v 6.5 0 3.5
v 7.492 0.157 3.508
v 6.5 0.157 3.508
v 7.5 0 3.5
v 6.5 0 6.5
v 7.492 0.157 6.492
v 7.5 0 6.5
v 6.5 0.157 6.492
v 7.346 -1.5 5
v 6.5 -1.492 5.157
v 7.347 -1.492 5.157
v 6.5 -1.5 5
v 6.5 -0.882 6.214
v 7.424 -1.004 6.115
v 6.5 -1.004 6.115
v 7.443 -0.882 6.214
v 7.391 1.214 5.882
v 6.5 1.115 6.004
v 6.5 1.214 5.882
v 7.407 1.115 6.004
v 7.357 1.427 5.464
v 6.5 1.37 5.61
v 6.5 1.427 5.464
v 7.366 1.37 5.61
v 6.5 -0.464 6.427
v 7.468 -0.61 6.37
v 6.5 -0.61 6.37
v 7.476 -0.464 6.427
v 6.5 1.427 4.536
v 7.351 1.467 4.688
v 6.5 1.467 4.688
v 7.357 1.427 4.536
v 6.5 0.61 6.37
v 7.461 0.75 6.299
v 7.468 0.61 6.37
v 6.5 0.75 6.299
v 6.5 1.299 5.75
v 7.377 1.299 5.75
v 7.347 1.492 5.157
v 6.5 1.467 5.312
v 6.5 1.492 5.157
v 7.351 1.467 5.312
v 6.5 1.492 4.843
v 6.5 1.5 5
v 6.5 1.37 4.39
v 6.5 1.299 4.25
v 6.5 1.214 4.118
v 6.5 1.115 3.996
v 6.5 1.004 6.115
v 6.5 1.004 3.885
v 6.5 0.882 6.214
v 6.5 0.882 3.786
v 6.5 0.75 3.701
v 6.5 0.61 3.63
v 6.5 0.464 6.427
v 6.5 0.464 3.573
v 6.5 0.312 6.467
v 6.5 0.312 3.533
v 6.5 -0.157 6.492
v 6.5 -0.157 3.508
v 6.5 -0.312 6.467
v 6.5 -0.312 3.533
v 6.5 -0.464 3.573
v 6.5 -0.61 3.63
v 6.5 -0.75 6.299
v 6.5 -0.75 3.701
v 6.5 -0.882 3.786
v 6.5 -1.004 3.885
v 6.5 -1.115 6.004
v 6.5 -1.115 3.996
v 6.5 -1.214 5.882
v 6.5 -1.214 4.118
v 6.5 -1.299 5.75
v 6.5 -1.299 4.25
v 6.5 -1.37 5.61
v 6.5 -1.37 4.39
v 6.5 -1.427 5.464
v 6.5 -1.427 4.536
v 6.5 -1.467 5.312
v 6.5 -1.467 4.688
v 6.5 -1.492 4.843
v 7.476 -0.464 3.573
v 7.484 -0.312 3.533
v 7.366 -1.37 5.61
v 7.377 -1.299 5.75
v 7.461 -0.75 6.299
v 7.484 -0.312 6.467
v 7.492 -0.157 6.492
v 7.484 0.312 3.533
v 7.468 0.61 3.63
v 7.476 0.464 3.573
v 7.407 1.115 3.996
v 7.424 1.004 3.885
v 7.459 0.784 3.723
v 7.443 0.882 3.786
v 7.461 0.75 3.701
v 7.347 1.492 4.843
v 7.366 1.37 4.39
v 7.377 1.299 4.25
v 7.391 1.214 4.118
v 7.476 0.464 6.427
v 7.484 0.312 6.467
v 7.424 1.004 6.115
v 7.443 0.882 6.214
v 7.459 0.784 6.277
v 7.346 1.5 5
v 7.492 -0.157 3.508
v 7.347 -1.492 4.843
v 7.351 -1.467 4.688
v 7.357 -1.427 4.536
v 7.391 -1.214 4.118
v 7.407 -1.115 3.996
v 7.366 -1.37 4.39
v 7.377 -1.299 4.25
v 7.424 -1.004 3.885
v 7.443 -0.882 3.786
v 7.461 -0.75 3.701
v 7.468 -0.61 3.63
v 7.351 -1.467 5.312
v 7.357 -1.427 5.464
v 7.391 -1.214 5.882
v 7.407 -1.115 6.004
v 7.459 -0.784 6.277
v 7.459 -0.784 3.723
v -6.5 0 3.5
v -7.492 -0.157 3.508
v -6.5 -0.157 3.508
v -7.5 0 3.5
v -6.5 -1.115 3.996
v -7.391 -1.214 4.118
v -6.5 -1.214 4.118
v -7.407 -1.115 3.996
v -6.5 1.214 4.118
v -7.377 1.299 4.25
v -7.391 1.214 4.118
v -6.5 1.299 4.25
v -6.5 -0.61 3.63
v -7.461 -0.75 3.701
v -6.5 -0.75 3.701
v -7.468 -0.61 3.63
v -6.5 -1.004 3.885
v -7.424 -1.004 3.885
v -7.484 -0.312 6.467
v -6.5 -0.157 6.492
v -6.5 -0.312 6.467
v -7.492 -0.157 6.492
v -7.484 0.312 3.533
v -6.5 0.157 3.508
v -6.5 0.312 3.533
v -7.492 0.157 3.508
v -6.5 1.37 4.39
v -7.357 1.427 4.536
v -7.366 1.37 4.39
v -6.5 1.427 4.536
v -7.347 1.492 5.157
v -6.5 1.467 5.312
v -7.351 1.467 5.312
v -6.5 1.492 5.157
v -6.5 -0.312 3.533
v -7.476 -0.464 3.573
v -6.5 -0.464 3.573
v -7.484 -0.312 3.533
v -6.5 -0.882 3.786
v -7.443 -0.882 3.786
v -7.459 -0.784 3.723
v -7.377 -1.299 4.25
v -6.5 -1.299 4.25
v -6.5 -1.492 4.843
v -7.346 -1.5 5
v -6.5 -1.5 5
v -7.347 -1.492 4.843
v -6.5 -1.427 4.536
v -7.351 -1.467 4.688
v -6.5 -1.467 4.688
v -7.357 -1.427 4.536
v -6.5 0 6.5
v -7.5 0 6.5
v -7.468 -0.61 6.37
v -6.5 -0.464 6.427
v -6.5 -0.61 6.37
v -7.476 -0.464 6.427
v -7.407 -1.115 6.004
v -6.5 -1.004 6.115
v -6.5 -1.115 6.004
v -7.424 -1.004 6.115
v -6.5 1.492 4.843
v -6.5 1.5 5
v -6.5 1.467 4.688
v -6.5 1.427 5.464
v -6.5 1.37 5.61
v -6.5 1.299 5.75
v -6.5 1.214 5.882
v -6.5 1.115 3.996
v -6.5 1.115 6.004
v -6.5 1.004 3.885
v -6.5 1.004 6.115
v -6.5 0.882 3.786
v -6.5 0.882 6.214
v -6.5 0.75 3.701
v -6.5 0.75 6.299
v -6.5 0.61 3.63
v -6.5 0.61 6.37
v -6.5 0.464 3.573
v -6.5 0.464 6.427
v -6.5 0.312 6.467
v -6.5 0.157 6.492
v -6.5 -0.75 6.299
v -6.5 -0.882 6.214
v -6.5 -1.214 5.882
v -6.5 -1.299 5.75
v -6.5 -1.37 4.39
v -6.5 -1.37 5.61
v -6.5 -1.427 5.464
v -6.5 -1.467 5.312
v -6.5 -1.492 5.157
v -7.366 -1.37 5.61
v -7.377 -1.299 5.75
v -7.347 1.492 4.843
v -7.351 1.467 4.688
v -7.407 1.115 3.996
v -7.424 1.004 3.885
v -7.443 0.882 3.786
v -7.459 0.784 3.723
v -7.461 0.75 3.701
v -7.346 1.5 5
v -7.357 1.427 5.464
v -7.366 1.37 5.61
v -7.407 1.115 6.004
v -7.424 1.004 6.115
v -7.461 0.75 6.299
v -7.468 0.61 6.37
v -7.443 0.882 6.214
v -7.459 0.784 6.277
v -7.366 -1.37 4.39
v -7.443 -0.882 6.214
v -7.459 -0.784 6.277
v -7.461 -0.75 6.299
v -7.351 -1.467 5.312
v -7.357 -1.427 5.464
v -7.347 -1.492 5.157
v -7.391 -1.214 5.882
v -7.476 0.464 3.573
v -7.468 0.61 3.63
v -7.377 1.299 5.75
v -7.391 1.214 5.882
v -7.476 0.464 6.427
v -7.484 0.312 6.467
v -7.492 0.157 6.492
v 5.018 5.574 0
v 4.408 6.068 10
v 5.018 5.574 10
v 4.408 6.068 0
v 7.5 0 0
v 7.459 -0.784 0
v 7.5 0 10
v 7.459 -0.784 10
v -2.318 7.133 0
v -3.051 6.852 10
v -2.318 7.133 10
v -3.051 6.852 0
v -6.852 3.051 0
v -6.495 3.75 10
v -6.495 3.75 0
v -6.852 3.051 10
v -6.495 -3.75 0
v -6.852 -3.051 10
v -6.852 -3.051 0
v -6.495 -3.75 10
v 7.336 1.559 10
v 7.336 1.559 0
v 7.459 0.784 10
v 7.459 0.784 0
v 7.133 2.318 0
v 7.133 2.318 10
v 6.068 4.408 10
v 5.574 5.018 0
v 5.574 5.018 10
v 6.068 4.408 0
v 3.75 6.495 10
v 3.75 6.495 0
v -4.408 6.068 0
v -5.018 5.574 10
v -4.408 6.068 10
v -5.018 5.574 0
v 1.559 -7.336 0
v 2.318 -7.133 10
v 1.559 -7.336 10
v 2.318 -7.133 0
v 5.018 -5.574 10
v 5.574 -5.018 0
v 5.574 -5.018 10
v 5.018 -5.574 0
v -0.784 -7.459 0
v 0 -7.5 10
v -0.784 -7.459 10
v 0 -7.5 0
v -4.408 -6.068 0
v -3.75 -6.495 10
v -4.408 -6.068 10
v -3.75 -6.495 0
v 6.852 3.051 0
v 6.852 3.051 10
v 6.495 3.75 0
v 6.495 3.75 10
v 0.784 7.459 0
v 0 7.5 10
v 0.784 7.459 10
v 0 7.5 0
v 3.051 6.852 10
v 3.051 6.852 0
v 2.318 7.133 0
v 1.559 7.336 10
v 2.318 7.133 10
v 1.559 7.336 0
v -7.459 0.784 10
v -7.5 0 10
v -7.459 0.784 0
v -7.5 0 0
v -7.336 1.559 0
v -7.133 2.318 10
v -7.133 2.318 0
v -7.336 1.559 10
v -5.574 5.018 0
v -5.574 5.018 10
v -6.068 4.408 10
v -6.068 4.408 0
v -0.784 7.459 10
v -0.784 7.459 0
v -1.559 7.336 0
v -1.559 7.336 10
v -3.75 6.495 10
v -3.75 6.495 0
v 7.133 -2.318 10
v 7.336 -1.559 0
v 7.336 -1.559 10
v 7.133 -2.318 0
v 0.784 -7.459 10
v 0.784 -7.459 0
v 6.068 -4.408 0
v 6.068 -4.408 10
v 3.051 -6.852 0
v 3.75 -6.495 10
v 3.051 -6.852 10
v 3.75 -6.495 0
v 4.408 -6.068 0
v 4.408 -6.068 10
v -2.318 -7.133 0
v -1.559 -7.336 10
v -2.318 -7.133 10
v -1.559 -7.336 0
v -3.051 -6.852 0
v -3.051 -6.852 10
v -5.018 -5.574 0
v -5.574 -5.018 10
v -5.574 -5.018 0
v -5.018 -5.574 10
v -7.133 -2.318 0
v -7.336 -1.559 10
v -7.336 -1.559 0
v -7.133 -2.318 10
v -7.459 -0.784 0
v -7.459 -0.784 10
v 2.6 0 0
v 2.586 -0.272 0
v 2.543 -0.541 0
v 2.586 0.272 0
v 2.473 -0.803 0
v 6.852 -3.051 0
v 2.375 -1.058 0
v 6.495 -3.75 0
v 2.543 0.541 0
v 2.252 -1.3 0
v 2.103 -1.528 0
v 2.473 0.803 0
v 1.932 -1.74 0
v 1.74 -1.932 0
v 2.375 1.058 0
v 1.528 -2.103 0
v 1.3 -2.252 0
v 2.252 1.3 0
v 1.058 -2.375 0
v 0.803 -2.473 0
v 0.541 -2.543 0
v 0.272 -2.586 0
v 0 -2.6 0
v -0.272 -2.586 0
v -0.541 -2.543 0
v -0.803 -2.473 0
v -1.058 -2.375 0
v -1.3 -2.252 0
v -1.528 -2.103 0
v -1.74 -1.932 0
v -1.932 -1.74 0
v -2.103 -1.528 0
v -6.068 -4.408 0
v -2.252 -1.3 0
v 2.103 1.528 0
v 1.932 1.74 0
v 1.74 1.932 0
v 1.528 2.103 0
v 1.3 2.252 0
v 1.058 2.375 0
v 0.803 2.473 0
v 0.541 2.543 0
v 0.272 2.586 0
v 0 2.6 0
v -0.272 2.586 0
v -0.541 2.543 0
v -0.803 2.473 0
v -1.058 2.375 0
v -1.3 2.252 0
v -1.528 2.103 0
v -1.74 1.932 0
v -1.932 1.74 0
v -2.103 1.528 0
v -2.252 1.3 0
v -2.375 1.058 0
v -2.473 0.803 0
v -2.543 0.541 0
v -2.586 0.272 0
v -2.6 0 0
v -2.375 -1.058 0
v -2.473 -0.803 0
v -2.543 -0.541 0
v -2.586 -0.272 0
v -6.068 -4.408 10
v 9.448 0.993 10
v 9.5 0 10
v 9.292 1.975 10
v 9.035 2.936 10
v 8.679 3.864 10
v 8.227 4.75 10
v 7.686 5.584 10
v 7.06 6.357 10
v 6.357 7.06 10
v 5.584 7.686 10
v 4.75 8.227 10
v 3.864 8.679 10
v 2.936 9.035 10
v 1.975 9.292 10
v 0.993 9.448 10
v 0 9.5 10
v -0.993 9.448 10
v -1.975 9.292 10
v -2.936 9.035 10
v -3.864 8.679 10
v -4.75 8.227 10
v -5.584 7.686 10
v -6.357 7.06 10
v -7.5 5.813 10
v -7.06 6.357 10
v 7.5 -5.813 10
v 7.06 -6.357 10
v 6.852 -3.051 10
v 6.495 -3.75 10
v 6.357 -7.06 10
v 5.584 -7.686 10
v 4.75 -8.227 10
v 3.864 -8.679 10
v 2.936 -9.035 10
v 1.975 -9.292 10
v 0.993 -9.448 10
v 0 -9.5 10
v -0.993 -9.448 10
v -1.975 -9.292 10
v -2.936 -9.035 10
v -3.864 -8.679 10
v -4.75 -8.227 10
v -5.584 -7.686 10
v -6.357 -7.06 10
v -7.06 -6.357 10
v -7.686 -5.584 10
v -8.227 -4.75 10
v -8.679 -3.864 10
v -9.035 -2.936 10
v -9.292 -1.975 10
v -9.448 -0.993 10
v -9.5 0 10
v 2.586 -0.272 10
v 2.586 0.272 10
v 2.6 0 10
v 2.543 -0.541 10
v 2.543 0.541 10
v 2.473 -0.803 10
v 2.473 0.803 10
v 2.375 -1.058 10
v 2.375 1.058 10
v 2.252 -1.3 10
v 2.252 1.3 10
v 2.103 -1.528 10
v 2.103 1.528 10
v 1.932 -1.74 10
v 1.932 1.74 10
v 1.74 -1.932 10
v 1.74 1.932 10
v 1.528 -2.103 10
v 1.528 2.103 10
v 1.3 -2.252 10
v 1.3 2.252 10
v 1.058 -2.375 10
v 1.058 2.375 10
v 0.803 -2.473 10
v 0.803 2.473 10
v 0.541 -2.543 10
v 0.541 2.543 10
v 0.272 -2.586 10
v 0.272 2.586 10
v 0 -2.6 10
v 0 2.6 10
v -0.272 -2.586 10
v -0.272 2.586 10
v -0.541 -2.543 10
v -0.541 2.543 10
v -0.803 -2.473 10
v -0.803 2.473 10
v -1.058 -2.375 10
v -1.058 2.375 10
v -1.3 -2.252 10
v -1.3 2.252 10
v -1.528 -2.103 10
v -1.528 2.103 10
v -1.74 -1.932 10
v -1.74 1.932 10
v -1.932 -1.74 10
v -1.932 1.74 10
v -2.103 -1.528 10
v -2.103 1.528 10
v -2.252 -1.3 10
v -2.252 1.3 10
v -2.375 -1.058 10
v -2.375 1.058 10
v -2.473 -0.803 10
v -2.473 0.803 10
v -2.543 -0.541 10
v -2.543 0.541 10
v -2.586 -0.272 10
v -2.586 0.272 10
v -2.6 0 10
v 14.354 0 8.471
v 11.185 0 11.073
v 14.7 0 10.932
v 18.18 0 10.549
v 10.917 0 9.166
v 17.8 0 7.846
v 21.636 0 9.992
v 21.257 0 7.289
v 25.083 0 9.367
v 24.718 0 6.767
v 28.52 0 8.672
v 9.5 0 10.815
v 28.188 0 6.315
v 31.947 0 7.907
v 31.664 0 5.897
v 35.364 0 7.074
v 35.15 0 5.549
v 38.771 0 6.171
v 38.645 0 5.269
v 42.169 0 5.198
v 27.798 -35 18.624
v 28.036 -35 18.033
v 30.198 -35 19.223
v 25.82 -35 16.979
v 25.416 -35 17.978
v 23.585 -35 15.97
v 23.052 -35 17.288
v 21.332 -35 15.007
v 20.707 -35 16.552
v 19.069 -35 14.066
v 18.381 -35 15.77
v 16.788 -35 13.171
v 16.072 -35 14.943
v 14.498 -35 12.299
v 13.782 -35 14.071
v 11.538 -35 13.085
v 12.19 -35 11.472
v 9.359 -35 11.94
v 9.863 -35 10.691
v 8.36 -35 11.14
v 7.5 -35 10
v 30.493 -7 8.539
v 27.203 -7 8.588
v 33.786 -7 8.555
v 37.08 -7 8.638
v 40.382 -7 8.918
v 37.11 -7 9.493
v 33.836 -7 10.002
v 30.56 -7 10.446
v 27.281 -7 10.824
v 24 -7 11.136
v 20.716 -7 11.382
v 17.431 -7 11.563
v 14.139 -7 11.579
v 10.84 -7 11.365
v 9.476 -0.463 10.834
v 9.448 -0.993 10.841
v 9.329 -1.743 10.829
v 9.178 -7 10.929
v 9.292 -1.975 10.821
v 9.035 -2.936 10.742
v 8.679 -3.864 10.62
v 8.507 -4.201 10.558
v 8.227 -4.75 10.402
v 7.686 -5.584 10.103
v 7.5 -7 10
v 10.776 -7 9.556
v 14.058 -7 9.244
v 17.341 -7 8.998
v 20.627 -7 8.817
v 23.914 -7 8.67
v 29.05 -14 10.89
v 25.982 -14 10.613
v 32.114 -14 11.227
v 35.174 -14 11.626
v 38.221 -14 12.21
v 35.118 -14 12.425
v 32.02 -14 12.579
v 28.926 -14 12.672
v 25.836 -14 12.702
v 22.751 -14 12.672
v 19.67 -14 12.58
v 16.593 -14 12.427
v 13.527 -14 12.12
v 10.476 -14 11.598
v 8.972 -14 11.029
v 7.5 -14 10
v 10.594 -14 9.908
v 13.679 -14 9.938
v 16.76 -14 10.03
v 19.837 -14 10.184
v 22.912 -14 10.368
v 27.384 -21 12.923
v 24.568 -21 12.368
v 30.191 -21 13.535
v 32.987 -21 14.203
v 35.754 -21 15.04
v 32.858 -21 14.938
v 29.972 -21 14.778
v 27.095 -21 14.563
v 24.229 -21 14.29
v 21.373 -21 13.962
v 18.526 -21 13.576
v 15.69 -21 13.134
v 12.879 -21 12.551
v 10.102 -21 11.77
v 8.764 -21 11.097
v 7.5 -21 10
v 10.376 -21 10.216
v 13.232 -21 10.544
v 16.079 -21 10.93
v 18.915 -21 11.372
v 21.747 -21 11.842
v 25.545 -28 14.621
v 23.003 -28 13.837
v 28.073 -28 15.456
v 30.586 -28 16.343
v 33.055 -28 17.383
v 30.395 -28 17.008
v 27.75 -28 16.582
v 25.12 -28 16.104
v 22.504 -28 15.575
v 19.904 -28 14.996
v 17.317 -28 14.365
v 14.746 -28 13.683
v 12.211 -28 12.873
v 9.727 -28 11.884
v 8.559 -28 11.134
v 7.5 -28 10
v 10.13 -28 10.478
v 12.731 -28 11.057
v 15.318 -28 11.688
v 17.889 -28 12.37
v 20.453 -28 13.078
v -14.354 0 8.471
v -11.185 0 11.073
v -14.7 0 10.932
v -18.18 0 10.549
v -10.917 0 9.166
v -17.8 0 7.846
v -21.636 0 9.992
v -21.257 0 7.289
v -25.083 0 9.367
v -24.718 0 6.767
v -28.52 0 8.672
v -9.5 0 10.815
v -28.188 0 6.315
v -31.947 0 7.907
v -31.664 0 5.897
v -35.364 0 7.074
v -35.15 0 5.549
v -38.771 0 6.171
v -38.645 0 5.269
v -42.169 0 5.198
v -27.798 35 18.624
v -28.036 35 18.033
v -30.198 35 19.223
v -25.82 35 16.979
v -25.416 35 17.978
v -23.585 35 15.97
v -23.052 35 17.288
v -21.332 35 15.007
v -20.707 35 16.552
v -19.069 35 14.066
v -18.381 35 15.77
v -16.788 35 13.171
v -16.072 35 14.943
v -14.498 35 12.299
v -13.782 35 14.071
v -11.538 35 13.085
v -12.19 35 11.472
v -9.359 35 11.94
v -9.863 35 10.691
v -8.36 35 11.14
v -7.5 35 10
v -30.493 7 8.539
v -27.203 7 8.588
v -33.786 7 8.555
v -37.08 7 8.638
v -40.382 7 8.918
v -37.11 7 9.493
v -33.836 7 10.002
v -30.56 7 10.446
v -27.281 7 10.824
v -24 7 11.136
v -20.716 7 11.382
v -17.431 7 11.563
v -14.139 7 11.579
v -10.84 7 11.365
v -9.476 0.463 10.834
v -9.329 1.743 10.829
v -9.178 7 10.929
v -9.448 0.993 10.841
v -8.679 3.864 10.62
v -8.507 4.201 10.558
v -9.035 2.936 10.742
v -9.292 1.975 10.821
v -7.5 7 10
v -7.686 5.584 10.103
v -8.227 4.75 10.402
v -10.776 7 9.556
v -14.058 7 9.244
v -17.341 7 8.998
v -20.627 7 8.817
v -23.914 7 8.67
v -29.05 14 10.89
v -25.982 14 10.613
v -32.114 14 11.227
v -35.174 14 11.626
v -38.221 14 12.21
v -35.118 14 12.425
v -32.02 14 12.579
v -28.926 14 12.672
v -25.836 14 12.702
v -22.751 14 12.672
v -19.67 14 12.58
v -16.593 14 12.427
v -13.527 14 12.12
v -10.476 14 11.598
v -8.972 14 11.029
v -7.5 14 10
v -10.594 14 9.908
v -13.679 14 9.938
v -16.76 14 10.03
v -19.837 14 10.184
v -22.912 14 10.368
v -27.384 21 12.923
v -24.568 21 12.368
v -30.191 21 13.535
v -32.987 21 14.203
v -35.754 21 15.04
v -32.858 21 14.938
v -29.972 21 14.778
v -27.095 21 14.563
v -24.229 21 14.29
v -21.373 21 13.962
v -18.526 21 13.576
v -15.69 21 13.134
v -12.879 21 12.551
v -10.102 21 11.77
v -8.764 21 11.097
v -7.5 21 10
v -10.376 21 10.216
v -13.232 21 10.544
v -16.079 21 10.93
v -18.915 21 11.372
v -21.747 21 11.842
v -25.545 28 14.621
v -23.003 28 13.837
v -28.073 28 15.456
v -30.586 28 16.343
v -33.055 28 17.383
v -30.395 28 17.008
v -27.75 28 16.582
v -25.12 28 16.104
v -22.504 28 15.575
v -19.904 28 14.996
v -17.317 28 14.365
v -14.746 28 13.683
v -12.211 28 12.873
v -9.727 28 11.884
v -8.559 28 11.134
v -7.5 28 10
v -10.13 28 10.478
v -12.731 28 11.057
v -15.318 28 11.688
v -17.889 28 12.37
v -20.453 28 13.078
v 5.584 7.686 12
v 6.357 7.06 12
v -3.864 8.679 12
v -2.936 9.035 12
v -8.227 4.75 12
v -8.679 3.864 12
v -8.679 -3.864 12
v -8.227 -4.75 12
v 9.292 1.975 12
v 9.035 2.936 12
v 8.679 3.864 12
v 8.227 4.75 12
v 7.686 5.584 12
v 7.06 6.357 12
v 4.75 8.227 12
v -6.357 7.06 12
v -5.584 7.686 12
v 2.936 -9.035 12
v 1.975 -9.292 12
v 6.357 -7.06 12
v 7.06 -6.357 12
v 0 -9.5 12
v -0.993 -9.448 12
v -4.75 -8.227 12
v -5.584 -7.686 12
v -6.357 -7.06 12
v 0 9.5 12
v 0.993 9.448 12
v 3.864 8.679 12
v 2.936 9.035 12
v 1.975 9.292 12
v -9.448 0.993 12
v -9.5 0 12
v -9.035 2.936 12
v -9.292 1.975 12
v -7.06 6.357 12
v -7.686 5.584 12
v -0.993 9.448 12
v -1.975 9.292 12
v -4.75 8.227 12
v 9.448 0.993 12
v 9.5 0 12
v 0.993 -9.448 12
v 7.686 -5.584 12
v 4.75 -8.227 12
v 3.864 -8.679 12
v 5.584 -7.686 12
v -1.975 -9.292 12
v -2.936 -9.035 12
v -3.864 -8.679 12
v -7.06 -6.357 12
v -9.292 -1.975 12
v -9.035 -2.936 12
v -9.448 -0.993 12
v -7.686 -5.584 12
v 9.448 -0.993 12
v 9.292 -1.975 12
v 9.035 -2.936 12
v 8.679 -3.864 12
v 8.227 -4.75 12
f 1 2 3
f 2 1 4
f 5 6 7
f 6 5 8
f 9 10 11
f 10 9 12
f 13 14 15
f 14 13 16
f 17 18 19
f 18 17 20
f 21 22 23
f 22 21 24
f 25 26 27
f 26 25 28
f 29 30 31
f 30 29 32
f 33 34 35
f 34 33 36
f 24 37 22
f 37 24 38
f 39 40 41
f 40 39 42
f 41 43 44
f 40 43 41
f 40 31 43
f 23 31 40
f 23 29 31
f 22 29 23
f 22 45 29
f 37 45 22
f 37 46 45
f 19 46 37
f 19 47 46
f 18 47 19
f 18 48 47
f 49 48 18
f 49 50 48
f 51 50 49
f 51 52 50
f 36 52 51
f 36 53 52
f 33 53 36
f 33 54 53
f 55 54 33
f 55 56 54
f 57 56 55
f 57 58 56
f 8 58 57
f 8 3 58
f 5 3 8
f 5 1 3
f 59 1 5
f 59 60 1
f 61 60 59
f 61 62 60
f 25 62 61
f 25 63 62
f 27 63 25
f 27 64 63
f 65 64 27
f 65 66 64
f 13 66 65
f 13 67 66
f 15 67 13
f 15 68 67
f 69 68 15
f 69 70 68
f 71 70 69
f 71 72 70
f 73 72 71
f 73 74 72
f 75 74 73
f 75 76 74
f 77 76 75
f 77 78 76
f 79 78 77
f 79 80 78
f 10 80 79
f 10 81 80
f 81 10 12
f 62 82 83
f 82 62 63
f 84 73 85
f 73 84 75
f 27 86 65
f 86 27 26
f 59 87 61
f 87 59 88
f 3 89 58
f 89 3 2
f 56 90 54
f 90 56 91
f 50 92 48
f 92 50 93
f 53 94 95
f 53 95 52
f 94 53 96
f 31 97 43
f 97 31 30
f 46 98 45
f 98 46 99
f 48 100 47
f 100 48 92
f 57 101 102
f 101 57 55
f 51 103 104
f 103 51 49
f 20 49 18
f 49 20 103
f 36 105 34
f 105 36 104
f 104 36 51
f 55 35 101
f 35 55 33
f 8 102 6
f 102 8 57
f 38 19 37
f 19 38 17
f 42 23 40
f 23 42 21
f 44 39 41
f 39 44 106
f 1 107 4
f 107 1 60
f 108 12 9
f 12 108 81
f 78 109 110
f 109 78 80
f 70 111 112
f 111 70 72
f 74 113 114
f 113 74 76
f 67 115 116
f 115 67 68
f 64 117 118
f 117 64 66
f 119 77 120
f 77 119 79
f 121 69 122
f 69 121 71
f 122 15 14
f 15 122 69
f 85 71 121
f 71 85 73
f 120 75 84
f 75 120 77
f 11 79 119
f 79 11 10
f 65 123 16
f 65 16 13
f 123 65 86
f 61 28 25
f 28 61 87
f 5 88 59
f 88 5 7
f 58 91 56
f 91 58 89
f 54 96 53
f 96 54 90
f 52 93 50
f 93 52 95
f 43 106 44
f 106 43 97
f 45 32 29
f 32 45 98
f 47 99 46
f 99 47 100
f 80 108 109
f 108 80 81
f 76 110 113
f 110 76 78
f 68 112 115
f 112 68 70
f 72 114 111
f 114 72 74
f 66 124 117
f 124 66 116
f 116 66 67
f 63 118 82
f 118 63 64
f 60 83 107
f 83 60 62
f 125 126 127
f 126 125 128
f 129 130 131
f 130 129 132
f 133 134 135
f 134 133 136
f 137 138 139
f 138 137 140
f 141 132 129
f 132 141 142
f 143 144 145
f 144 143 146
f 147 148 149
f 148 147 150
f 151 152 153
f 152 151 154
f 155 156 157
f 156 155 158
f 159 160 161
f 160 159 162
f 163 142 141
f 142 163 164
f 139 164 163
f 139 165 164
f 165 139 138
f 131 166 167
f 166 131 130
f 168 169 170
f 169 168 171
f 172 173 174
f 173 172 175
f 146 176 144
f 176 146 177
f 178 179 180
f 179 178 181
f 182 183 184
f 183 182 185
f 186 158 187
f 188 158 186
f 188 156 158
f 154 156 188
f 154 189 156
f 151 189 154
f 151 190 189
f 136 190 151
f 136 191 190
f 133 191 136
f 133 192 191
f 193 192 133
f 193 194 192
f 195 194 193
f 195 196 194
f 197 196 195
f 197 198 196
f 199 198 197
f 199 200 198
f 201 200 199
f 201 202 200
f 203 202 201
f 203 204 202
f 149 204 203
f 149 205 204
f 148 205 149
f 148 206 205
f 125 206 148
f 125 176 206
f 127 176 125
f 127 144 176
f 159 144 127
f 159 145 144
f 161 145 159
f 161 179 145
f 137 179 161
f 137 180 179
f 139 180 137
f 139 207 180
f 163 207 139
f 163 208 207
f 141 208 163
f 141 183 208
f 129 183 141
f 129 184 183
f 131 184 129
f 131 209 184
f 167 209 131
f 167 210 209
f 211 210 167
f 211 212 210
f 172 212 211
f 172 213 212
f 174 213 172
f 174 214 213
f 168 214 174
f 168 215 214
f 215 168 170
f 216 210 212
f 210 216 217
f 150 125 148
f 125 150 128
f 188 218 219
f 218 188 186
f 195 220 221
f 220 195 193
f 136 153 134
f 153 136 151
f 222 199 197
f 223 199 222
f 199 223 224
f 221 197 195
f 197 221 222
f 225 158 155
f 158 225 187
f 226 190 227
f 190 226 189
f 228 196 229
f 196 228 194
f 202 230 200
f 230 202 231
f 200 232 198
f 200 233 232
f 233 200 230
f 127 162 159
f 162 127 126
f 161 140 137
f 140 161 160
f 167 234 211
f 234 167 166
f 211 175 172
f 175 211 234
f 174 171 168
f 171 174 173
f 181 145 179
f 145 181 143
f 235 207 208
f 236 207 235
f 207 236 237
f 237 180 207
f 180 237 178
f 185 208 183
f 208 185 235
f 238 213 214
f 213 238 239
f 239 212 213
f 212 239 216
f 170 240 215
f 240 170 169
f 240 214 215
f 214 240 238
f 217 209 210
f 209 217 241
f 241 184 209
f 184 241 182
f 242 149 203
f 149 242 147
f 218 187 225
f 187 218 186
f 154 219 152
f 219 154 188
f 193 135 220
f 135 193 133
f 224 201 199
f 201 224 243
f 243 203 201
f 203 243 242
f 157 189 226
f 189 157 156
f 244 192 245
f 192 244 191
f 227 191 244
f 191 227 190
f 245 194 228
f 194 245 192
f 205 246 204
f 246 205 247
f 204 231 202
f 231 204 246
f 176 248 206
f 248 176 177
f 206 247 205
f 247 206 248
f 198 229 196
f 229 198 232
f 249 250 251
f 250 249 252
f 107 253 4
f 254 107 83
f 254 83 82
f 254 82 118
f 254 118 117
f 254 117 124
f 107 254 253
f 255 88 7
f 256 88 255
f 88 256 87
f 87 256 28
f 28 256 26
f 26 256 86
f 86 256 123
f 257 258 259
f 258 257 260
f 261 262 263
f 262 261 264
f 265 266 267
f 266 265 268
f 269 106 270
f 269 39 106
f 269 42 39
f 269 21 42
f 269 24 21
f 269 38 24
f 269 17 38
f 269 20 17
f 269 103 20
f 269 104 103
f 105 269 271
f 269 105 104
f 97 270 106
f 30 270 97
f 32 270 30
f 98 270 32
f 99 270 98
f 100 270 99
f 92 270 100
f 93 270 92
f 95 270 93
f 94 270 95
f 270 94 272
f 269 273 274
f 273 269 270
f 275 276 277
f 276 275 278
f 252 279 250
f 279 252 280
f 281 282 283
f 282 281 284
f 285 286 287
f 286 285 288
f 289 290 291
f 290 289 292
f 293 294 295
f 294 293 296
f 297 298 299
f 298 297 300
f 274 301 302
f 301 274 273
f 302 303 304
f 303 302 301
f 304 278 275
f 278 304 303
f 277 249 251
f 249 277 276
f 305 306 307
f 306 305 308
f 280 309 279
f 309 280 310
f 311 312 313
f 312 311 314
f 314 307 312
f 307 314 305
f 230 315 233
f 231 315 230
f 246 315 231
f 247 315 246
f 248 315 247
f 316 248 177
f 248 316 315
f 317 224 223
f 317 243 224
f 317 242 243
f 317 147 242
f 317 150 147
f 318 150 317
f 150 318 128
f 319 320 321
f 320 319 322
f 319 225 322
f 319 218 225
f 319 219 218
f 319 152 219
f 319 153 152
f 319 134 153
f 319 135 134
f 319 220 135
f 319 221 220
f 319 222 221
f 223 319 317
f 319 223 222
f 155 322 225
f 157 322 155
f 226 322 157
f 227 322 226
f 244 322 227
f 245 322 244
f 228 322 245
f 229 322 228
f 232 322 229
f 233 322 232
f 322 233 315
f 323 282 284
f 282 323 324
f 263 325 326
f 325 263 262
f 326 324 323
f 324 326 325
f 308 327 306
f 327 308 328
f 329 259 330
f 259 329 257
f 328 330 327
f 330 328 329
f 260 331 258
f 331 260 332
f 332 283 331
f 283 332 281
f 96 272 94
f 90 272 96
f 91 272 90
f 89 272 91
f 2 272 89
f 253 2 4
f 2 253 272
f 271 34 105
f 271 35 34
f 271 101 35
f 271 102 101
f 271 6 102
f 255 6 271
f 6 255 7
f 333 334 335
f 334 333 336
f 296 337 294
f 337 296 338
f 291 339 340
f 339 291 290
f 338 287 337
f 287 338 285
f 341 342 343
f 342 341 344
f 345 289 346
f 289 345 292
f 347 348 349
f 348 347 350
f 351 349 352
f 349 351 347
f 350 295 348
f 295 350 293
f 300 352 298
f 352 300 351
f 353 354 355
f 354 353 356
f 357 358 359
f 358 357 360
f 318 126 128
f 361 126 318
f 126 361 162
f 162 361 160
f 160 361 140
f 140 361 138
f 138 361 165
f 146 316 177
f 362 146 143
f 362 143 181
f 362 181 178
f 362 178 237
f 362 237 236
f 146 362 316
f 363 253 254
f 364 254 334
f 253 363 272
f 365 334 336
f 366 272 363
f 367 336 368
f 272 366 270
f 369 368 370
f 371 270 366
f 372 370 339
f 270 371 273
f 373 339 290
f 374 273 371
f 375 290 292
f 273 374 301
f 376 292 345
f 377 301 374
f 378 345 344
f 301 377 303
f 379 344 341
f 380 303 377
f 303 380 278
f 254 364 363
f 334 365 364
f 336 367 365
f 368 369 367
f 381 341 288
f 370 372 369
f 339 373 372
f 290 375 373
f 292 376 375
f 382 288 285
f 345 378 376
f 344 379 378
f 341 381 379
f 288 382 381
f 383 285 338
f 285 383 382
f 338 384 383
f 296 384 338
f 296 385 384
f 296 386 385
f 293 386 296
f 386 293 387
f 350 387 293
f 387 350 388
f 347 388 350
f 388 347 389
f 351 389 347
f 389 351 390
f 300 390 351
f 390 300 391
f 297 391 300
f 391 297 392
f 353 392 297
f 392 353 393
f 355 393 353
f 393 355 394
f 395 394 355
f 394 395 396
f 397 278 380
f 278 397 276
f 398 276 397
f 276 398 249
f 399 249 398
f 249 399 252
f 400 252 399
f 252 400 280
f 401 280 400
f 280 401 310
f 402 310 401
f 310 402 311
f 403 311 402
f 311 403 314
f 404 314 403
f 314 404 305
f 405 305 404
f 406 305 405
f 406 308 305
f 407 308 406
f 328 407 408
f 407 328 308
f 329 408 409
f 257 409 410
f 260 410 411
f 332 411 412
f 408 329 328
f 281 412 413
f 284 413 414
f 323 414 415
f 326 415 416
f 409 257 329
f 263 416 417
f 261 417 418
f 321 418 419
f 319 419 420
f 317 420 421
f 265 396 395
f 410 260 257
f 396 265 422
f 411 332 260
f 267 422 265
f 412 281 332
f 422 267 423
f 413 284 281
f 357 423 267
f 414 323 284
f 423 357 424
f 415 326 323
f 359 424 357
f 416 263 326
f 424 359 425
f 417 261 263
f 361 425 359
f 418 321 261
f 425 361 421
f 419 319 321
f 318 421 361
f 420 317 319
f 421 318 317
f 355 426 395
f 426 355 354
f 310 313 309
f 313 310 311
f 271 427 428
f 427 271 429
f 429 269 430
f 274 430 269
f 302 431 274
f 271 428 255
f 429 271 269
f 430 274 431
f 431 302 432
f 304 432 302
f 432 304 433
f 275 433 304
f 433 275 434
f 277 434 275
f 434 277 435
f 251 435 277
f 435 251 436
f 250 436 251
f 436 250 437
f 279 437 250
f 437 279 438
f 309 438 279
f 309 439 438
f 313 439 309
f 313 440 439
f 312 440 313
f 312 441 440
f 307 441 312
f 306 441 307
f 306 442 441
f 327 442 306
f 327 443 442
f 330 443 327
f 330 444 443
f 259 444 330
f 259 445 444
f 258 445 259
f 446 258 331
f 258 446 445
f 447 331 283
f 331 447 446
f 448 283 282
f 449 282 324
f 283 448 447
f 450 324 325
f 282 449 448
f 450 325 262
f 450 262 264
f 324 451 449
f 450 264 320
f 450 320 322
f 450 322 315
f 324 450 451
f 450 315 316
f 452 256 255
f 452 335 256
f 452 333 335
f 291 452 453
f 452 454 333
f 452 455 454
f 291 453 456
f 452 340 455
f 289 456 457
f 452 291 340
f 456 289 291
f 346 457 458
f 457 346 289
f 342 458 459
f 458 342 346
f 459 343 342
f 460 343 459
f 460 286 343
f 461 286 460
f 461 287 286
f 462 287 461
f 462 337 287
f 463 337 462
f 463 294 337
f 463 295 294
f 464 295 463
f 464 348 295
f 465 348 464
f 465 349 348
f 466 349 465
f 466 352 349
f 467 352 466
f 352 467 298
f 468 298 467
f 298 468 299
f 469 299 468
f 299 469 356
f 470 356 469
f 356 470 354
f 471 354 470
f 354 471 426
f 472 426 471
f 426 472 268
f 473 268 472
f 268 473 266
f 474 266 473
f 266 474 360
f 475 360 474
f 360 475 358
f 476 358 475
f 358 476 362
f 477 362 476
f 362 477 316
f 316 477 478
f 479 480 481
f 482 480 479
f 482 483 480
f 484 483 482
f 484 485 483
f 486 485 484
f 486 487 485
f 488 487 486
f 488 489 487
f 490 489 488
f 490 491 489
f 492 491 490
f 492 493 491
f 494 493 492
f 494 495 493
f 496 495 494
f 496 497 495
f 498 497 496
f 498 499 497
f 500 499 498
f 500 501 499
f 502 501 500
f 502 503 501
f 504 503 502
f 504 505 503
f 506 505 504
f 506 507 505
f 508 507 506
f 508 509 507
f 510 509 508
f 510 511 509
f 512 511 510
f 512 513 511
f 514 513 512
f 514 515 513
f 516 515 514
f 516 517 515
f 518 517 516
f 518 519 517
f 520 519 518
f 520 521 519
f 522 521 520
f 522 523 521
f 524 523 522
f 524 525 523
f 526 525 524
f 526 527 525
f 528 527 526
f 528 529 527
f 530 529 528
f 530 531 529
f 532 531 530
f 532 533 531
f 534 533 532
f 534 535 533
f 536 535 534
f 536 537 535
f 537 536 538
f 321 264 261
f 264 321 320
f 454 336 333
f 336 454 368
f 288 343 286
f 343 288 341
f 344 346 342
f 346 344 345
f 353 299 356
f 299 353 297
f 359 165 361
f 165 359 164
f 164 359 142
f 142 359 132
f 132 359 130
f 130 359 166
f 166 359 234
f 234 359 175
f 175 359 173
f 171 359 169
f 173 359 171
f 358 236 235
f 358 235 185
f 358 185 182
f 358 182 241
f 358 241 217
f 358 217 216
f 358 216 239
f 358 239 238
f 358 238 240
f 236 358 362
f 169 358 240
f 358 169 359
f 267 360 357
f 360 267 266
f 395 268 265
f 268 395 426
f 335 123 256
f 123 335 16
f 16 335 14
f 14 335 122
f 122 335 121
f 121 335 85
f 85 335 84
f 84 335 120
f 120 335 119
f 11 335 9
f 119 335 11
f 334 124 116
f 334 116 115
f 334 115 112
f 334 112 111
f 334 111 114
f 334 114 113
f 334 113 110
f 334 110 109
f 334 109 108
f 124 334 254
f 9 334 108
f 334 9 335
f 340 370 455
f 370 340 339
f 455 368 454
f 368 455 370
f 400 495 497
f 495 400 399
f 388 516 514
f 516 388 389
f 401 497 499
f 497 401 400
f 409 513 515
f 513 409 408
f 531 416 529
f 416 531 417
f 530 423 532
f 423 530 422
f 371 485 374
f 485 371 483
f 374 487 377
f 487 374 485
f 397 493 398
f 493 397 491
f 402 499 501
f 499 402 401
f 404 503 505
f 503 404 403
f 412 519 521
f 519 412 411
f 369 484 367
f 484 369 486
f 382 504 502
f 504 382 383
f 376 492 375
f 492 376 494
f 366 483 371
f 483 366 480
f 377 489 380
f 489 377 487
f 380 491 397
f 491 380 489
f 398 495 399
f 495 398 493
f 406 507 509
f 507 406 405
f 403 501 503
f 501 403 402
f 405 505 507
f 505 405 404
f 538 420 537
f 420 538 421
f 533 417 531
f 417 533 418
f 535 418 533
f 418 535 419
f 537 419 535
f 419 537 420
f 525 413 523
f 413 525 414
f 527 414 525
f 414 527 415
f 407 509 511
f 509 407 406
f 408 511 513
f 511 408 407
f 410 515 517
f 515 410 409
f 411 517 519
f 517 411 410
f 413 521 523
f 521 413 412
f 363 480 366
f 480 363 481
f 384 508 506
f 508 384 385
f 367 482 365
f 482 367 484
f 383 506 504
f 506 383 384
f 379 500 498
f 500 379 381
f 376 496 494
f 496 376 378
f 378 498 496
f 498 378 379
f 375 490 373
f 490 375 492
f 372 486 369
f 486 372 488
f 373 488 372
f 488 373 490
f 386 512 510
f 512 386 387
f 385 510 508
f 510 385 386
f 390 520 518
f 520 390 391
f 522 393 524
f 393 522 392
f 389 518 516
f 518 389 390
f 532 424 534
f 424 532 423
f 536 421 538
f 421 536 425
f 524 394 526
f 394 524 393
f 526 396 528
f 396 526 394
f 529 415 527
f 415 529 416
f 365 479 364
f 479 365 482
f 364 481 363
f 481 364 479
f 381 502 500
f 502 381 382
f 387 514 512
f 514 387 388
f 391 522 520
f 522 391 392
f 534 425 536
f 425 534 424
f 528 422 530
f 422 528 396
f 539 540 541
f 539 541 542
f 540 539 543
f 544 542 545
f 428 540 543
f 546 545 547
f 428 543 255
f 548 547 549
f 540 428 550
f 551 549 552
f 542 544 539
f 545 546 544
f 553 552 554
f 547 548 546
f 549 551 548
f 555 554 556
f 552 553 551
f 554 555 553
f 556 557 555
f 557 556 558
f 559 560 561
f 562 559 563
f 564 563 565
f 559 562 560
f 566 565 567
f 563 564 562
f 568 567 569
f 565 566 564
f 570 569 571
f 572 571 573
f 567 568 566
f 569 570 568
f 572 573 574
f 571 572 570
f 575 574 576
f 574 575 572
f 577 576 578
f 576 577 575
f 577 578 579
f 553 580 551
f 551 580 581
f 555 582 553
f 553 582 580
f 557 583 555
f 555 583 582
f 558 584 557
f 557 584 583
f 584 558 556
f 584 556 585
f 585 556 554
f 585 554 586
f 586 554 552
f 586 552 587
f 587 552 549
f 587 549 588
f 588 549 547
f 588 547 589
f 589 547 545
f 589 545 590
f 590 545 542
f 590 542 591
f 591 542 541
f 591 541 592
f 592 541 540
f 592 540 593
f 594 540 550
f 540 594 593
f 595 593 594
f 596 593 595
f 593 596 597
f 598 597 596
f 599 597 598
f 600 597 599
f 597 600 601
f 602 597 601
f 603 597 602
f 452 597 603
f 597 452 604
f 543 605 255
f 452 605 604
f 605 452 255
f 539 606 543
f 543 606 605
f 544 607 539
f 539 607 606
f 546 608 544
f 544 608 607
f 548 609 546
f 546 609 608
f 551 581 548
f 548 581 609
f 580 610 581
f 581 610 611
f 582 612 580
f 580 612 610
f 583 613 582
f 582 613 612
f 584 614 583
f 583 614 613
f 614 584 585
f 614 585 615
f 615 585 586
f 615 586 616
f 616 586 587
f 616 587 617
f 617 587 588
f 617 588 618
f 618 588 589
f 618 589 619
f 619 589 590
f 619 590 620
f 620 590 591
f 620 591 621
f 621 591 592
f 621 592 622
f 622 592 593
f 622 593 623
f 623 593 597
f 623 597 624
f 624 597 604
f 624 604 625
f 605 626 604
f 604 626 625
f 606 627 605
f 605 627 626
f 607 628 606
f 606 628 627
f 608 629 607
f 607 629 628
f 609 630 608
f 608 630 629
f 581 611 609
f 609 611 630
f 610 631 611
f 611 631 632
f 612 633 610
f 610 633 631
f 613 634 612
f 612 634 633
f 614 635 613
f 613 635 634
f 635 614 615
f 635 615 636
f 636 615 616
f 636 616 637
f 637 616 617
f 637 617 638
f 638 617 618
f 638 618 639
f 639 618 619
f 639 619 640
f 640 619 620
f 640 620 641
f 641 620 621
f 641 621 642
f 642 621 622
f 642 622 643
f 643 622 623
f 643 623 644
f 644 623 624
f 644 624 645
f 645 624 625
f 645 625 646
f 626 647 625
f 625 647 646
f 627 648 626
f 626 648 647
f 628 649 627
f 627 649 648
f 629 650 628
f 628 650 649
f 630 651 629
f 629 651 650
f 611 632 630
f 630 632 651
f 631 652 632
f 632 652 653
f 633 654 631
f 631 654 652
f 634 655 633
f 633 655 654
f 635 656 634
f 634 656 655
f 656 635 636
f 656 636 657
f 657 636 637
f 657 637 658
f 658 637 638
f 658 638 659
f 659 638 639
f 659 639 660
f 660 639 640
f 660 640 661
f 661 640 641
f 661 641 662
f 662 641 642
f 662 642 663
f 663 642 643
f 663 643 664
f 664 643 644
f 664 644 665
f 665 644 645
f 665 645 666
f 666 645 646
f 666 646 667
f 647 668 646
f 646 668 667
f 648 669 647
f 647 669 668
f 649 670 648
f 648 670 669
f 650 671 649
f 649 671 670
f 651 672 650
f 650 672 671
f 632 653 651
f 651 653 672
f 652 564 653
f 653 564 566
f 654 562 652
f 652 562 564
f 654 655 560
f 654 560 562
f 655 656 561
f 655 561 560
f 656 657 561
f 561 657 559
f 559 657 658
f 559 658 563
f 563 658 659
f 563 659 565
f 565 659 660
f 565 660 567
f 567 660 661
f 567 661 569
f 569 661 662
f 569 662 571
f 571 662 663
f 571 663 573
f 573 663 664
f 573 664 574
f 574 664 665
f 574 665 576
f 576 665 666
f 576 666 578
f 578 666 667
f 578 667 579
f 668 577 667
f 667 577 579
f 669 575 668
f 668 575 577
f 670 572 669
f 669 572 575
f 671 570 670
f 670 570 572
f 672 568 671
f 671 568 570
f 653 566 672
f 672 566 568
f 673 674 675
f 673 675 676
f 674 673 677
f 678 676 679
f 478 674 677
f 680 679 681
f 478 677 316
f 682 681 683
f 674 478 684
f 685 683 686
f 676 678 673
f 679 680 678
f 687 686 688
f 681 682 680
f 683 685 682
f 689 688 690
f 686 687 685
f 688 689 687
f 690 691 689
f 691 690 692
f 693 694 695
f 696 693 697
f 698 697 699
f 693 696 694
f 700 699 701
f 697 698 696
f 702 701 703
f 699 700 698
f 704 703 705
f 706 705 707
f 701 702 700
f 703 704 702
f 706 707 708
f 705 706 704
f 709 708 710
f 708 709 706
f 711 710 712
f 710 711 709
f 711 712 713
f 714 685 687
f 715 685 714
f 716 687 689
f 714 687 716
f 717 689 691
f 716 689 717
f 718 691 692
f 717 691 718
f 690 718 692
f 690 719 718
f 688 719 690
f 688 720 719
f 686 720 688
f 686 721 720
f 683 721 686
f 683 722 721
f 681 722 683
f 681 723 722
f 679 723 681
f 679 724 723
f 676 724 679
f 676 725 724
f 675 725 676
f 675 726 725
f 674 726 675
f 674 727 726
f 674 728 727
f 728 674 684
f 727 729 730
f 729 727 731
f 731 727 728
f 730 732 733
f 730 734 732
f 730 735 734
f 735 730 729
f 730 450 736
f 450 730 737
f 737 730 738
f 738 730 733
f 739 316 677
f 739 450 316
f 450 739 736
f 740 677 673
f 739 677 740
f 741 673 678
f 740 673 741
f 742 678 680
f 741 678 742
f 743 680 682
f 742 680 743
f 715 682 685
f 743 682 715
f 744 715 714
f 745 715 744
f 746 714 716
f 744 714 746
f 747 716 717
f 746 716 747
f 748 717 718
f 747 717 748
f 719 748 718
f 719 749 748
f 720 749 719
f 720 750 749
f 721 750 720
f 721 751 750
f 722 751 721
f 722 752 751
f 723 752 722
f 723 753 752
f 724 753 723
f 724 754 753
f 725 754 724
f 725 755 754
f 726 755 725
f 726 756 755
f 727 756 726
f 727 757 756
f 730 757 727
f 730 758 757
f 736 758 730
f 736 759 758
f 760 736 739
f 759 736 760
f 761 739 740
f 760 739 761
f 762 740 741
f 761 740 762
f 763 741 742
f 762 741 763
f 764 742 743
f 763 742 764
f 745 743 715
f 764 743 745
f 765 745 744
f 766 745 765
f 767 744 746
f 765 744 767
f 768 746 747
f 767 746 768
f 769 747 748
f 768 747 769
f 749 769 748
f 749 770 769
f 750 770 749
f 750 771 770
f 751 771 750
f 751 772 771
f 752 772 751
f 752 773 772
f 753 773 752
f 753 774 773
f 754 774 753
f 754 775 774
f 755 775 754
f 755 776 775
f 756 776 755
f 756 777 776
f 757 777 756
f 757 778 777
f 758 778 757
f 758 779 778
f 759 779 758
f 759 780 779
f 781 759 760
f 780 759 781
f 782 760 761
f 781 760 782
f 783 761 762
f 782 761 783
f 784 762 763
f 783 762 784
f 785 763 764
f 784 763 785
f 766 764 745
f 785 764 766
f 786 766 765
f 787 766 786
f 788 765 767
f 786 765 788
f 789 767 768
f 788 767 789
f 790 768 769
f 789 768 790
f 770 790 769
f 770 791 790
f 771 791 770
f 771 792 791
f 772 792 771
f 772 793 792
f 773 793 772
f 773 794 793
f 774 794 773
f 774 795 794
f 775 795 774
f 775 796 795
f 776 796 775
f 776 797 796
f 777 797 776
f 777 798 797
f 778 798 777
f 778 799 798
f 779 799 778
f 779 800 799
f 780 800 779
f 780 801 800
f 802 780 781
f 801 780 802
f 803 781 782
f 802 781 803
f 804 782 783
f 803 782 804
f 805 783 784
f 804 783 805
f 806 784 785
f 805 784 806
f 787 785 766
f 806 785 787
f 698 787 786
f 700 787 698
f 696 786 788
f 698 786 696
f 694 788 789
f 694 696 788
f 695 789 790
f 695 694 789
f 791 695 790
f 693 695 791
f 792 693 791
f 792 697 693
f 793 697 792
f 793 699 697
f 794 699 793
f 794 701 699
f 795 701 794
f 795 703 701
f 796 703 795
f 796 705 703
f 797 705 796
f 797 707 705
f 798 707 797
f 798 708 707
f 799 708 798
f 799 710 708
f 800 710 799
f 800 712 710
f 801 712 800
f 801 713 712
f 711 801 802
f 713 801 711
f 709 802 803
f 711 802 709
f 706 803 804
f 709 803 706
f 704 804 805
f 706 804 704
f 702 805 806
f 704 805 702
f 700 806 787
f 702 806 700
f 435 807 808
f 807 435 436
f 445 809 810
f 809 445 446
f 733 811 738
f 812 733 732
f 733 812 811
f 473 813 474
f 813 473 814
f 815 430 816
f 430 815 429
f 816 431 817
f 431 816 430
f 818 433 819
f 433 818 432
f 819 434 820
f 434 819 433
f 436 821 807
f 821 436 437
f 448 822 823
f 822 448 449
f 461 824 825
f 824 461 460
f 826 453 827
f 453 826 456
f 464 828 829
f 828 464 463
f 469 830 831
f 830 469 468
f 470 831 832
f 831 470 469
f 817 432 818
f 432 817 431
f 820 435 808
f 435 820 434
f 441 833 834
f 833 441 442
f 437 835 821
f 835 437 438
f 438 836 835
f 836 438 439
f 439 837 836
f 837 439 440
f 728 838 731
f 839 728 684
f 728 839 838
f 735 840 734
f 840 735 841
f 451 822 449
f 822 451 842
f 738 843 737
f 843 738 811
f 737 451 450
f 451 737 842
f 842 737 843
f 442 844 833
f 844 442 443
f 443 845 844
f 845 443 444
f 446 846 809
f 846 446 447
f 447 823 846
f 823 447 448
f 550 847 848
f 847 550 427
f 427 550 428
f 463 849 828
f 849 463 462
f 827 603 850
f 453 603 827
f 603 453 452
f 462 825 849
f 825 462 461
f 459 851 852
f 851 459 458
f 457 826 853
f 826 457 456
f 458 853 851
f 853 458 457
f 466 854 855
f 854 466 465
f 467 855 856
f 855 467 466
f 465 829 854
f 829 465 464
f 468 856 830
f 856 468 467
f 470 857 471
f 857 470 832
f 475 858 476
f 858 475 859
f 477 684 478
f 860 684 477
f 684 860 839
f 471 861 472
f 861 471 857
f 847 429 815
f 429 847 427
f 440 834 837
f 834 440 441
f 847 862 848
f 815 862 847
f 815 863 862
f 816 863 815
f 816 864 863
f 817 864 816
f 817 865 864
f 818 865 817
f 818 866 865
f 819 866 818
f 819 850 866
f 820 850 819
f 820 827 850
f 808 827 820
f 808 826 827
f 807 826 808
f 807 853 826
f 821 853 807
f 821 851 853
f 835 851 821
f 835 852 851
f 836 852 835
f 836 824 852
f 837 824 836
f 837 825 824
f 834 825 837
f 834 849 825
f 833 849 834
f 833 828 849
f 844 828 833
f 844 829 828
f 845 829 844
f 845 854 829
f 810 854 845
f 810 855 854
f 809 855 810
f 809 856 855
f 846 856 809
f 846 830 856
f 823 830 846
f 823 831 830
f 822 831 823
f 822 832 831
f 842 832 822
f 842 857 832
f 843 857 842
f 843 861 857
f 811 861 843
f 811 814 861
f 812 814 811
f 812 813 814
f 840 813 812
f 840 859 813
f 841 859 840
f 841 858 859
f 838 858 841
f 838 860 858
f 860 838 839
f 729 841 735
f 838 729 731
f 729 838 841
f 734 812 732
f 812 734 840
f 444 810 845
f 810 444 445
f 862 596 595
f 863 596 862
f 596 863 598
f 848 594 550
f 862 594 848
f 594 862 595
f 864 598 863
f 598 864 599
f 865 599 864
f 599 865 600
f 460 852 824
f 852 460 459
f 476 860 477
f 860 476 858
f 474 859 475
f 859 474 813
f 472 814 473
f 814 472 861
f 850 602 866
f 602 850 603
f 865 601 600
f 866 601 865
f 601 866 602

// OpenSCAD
/*
 * COMPLETE MOTOR + IMPELLER ASSEMBLY
 * For CFD fluid testing and visualization
 * 
 * This model includes:
 *   - Brushless motor (2204-2206 size)
 *   - Motor shaft (5mm)
 *   - Impeller hub
 *   - 3 impeller variants (bladeless, AI-blades, hybrid)
 *   - Mounting plate
 * 
 * Usage:
 *   - Render full assembly: F6
 *   - Export for CFD: Set EXPORT_MODE = "impeller_only"
 *   - Change design: Set IMPELLER_TYPE = "bladeless" | "bladed" | "hybrid"
 */

// ============================================================================
// CONFIGURATION PARAMETERS (AI-Optimizable)
// ============================================================================

// General Settings
$fn = 60;  // Resolution for CFD export (increase to 100 for final)

// Export Mode
EXPORT_MODE = "impeller_only";  // Options: "full_assembly", "impeller_only", "motor_only"

// Impeller Type
IMPELLER_TYPE = "bladed";  // Options: "bladeless", "bladed", "hybrid"

// Motor Specifications (2204-2206 brushless)
MOTOR_DIAMETER = 28;         // mm
MOTOR_HEIGHT = 25;           // mm
MOTOR_SHAFT_DIAMETER = 5;    // mm (standard)
MOTOR_SHAFT_LENGTH = 15;     // mm (extends above motor)
MOTOR_MOUNT_PATTERN = 16;    // mm (16x16 or 19x19 common)
MOTOR_SCREW_DIAMETER = 3;    // M3 screws

// Impeller Parameters - BLADELESS
BLADELESS_OUTER_DIAMETER = 90;    // mm
BLADELESS_AIR_GAP = 0.8;          // mm (optimize: 0.6-1.2)
BLADELESS_THROAT_RATIO = 0.72;    // (optimize: 0.65-0.80)
BLADELESS_EXPANSION_ANGLE = 18;   // degrees (optimize: 12-25)
BLADELESS_RING_THICKNESS = 3;     // mm (optimize: 2-4)
BLADELESS_HEIGHT = 24;            // mm

// Impeller Parameters - BLADED
BLADED_DIAMETER = 85;
BLADED_HUB_DIAMETER = 15;         // mm (optimize: 12-20)
BLADED_BLADE_COUNT = 2;
BLADED_ROOT_CHORD = 35;
BLADED_TIP_CHORD_RATIO = 0.7;    // (optimize: 0.6-0.8)
BLADED_BLADE_THICKNESS = 2;       // mm (optimize: 1.5-3)
BLADED_BLADE_TWIST = -30;
BLADED_ATTACK_ANGLE = -8;
BLADED_BLADE_HEIGHT = 12;         // mm (optimize: 10-15)

// Hub Parameters
HUB_DIAMETER = 15;
HUB_HEIGHT = 10;
HUB_SET_SCREW_DIAMETER = 3;  // M3 set screw

// Mounting Plate
PLATE_SIZE = 50;
PLATE_THICKNESS = 3;

// ============================================================================
// MOTOR MODEL
// ============================================================================

module brushless_motor_2204() {
    color("DarkSlateGray") {
        // Motor can (bell)
        difference() {
            cylinder(h=MOTOR_HEIGHT, d=MOTOR_DIAMETER);
            
            // Hollow inside (weight reduction visualization)
            translate([0, 0, -0.5])
                cylinder(h=MOTOR_HEIGHT - 5, d=MOTOR_DIAMETER - 4);
            
            // Mounting holes
            for(i = [0:3]) {
                rotate([0, 0, i * 90])
                    translate([MOTOR_MOUNT_PATTERN/2, 0, MOTOR_HEIGHT/2])
                        rotate([90, 0, 0])
                            cylinder(h=MOTOR_DIAMETER, d=MOTOR_SCREW_DIAMETER, center=true);
            }
        }
        
        // Motor base
        translate([0, 0, -3])
            cylinder(h=3, d=MOTOR_DIAMETER - 2);
    }
    
    // Motor shaft
    color("Silver")
        translate([0, 0, MOTOR_HEIGHT])
            cylinder(h=MOTOR_SHAFT_LENGTH, d=MOTOR_SHAFT_DIAMETER);
    
    // Shaft tip (for hub attachment)
    color("Silver")
        translate([0, 0, MOTOR_HEIGHT + MOTOR_SHAFT_LENGTH])
            cylinder(h=2, d=MOTOR_SHAFT_DIAMETER - 0.5);
}

// ============================================================================
// IMPELLER HUB
// ============================================================================

module impeller_hub() {
    color("Gray")
    difference() {
        // Hub body
        cylinder(h=HUB_HEIGHT, d=HUB_DIAMETER);
        
        // Shaft hole (5mm + 0.2mm clearance)
        translate([0, 0, -0.5])
            cylinder(h=HUB_HEIGHT + 1, d=MOTOR_SHAFT_DIAMETER + 0.2);
        
        // Set screw holes (2x for balance)
        for(i = [0:1]) {
            rotate([0, 0, i * 180])
                translate([HUB_DIAMETER/2 - 1, 0, HUB_HEIGHT/2])
                    rotate([0, 90, 0])
                        cylinder(h=5, d=HUB_SET_SCREW_DIAMETER);
        }
    }
}

// ============================================================================
// BLADELESS IMPELLER (Dyson-style)
// ============================================================================

module bladeless_impeller() {
    outer_r = BLADELESS_OUTER_DIAMETER / 2;
    throat_r = outer_r * BLADELESS_THROAT_RATIO;
    gap = BLADELESS_AIR_GAP;
    
    color("SkyBlue", 0.7)
    difference() {
        // Outer ring
        rotate_extrude()
            translate([outer_r - BLADELESS_RING_THICKNESS/2, BLADELESS_HEIGHT/2, 0])
                circle(d=BLADELESS_RING_THICKNESS + BLADELESS_HEIGHT);
        
        // Inner air gap (critical for Coanda effect)
        rotate_extrude()
            translate([outer_r - gap - BLADELESS_RING_THICKNESS/2, BLADELESS_HEIGHT/2, 0])
                circle(d=BLADELESS_RING_THICKNESS + BLADELESS_HEIGHT - 2*gap);
    }
    
    // Base plate (connects to hub)
    color("SkyBlue", 0.7)
    translate([0, 0, -2])
        difference() {
            cylinder(h=2, d=outer_r * 2);
            translate([0, 0, -0.5])
                cylinder(h=3, d=HUB_DIAMETER + 1);
        }
    
    // Air inlet (bell-shaped for smooth flow)
    color("SkyBlue", 0.7)
    translate([0, 0, -2]) {
        difference() {
            cylinder(h=15, d1=throat_r * 2, d2=outer_r * 1.8);
            translate([0, 0, -0.5])
                cylinder(h=16, d1=throat_r * 2 - 3, d2=outer_r * 1.8 - 3);
        }
    }
}

// ============================================================================
// AI-OPTIMIZED BLADED IMPELLER (NACA 2412 profile)
// ============================================================================

module naca_2412_blade(chord, height, twist_angle, attack_angle) {
    // Simplified NACA 2412 airfoil profile
    // Using parametric approximation for 3D printing
    
    color("LightSteelBlue", 0.8)
    linear_extrude(height=height, twist=twist_angle, scale=BLADED_TIP_CHORD_RATIO) {
        rotate([0, 0, attack_angle])
        polygon([
            // Upper surface (cambered)
            [0, 0],
            [chord * 0.05, chord * 0.03],
            [chord * 0.1, chord * 0.045],
            [chord * 0.2, chord * 0.055],
            [chord * 0.3, chord * 0.058],
            [chord * 0.4, chord * 0.056],
            [chord * 0.5, chord * 0.052],
            [chord * 0.6, chord * 0.046],
            [chord * 0.7, chord * 0.038],
            [chord * 0.8, chord * 0.028],
            [chord * 0.9, chord * 0.016],
            [chord * 1.0, chord * 0.002],
            // Lower surface (less cambered)
            [chord * 0.9, -chord * 0.010],
            [chord * 0.8, -chord * 0.016],
            [chord * 0.7, -chord * 0.020],
            [chord * 0.6, -chord * 0.022],
            [chord * 0.5, -chord * 0.023],
            [chord * 0.4, -chord * 0.022],
            [chord * 0.3, -chord * 0.020],
            [chord * 0.2, -chord * 0.016],
            [chord * 0.1, -chord * 0.010],
            [chord * 0.05, -chord * 0.005],
        ]);
    }
}

module bladed_impeller() {
    // Blades
    for(i = [0 : BLADED_BLADE_COUNT - 1]) {
        rotate([0, 0, i * (360 / BLADED_BLADE_COUNT)])
            translate([BLADED_HUB_DIAMETER/2, 0, 0])
                rotate([90, 0, 0])
                    naca_2412_blade(
                        BLADED_ROOT_CHORD, 
                        (BLADED_DIAMETER - BLADED_HUB_DIAMETER) / 2,
                        BLADED_BLADE_TWIST,
                        BLADED_ATTACK_ANGLE
                    );
    }
    
    // Hub disk (connects blades)
    color("LightSteelBlue", 0.8)
    cylinder(h=2, d=BLADED_HUB_DIAMETER + 4);
}

// ============================================================================
// HYBRID IMPELLER (Blades inside bladeless ring)
// ============================================================================

module hybrid_impeller() {
    // Outer bladeless ring
    bladeless_impeller();
    
    // Inner bladed impeller (scaled down to fit)
    scale([0.85, 0.85, 1])
        bladed_impeller();
}

// ============================================================================
// MOUNTING PLATE
// ============================================================================

module mounting_plate() {
    color("DimGray")
    difference() {
        // Base plate
        translate([-PLATE_SIZE/2, -PLATE_SIZE/2, 0])
            cube([PLATE_SIZE, PLATE_SIZE, PLATE_THICKNESS]);
        
        // Center hole for motor shaft
        translate([0, 0, -0.5])
            cylinder(h=PLATE_THICKNESS + 1, d=MOTOR_DIAMETER + 2);
        
        // Motor mounting holes
        for(i = [0:3]) {
            rotate([0, 0, i * 90])
                translate([MOTOR_MOUNT_PATTERN/2, 0, -0.5])
                    cylinder(h=PLATE_THICKNESS + 1, d=MOTOR_SCREW_DIAMETER);
        }
    }
}

// ============================================================================
// COMPLETE ASSEMBLY
// ============================================================================

module complete_assembly() {
    // Mounting plate (bottom)
    translate([0, 0, -PLATE_THICKNESS])
        mounting_plate();
    
    // Motor
    translate([0, 0, 0])
        brushless_motor_2204();
    
    // Hub (on shaft)
    translate([0, 0, MOTOR_HEIGHT + MOTOR_SHAFT_LENGTH - 2])
        impeller_hub();
    
    // Impeller (on hub)
    translate([0, 0, MOTOR_HEIGHT + MOTOR_SHAFT_LENGTH + HUB_HEIGHT]) {
        if (IMPELLER_TYPE == "bladeless") {
            bladeless_impeller();
        } else if (IMPELLER_TYPE == "bladed") {
            bladed_impeller();
        } else if (IMPELLER_TYPE == "hybrid") {
            hybrid_impeller();
        }
    }
}

// ============================================================================
// RENDER BASED ON EXPORT MODE
// ============================================================================

if (EXPORT_MODE == "full_assembly") {
    complete_assembly();
} 
else if (EXPORT_MODE == "impeller_only") {
    // For CFD testing - impeller + hub only
    impeller_hub();
    translate([0, 0, HUB_HEIGHT]) {
        if (IMPELLER_TYPE == "bladeless") {
            bladeless_impeller();
        } else if (IMPELLER_TYPE == "bladed") {
            bladed_impeller();
        } else if (IMPELLER_TYPE == "hybrid") {
            hybrid_impeller();
        }
    }
}
else if (EXPORT_MODE == "motor_only") {
    brushless_motor_2204();
}

// ============================================================================
// ANNOTATIONS FOR VISUALIZATION
// ============================================================================

// Uncomment to show dimensions
/*
color("Red", 0.3)
translate([BLADED_DIAMETER/2 + 10, 0, 20])
    text(str("Ø", BLADED_DIAMETER, "mm"), size=5, halign="left");

color("Green", 0.3)
translate([0, BLADED_DIAMETER/2 + 10, 20])
    text(str(BLADED_BLADE_COUNT, " blades"), size=5, halign="center");
*/

// ============================================================================
// EXPORT NOTES
// ============================================================================

/*
 * TO EXPORT FOR CFD TESTING:
 * 
 * 1. Set EXPORT_MODE = "impeller_only"
 * 2. Set IMPELLER_TYPE = "bladeless" (or "bladed" or "hybrid")
 * 3. Press F6 to render
 * 4. File → Export → Export as STL
 * 5. Use filename: impeller_bladeless_fn60.stl
 * 
 * FOR OPTIMIZATION:
 * - Modify parameters at top (marked with "optimize:")
 * - Re-render and export
 * - Upload to SimScale for CFD
 * - Compare results
 * 
 * RECOMMENDED CFD SETTINGS:
 * - Solver: k-omega SST
 * - RPM: 5000, 7000, 9000
 * - Mesh: 3-5M cells
 * - Boundary: Rotating zone on impeller
 */
